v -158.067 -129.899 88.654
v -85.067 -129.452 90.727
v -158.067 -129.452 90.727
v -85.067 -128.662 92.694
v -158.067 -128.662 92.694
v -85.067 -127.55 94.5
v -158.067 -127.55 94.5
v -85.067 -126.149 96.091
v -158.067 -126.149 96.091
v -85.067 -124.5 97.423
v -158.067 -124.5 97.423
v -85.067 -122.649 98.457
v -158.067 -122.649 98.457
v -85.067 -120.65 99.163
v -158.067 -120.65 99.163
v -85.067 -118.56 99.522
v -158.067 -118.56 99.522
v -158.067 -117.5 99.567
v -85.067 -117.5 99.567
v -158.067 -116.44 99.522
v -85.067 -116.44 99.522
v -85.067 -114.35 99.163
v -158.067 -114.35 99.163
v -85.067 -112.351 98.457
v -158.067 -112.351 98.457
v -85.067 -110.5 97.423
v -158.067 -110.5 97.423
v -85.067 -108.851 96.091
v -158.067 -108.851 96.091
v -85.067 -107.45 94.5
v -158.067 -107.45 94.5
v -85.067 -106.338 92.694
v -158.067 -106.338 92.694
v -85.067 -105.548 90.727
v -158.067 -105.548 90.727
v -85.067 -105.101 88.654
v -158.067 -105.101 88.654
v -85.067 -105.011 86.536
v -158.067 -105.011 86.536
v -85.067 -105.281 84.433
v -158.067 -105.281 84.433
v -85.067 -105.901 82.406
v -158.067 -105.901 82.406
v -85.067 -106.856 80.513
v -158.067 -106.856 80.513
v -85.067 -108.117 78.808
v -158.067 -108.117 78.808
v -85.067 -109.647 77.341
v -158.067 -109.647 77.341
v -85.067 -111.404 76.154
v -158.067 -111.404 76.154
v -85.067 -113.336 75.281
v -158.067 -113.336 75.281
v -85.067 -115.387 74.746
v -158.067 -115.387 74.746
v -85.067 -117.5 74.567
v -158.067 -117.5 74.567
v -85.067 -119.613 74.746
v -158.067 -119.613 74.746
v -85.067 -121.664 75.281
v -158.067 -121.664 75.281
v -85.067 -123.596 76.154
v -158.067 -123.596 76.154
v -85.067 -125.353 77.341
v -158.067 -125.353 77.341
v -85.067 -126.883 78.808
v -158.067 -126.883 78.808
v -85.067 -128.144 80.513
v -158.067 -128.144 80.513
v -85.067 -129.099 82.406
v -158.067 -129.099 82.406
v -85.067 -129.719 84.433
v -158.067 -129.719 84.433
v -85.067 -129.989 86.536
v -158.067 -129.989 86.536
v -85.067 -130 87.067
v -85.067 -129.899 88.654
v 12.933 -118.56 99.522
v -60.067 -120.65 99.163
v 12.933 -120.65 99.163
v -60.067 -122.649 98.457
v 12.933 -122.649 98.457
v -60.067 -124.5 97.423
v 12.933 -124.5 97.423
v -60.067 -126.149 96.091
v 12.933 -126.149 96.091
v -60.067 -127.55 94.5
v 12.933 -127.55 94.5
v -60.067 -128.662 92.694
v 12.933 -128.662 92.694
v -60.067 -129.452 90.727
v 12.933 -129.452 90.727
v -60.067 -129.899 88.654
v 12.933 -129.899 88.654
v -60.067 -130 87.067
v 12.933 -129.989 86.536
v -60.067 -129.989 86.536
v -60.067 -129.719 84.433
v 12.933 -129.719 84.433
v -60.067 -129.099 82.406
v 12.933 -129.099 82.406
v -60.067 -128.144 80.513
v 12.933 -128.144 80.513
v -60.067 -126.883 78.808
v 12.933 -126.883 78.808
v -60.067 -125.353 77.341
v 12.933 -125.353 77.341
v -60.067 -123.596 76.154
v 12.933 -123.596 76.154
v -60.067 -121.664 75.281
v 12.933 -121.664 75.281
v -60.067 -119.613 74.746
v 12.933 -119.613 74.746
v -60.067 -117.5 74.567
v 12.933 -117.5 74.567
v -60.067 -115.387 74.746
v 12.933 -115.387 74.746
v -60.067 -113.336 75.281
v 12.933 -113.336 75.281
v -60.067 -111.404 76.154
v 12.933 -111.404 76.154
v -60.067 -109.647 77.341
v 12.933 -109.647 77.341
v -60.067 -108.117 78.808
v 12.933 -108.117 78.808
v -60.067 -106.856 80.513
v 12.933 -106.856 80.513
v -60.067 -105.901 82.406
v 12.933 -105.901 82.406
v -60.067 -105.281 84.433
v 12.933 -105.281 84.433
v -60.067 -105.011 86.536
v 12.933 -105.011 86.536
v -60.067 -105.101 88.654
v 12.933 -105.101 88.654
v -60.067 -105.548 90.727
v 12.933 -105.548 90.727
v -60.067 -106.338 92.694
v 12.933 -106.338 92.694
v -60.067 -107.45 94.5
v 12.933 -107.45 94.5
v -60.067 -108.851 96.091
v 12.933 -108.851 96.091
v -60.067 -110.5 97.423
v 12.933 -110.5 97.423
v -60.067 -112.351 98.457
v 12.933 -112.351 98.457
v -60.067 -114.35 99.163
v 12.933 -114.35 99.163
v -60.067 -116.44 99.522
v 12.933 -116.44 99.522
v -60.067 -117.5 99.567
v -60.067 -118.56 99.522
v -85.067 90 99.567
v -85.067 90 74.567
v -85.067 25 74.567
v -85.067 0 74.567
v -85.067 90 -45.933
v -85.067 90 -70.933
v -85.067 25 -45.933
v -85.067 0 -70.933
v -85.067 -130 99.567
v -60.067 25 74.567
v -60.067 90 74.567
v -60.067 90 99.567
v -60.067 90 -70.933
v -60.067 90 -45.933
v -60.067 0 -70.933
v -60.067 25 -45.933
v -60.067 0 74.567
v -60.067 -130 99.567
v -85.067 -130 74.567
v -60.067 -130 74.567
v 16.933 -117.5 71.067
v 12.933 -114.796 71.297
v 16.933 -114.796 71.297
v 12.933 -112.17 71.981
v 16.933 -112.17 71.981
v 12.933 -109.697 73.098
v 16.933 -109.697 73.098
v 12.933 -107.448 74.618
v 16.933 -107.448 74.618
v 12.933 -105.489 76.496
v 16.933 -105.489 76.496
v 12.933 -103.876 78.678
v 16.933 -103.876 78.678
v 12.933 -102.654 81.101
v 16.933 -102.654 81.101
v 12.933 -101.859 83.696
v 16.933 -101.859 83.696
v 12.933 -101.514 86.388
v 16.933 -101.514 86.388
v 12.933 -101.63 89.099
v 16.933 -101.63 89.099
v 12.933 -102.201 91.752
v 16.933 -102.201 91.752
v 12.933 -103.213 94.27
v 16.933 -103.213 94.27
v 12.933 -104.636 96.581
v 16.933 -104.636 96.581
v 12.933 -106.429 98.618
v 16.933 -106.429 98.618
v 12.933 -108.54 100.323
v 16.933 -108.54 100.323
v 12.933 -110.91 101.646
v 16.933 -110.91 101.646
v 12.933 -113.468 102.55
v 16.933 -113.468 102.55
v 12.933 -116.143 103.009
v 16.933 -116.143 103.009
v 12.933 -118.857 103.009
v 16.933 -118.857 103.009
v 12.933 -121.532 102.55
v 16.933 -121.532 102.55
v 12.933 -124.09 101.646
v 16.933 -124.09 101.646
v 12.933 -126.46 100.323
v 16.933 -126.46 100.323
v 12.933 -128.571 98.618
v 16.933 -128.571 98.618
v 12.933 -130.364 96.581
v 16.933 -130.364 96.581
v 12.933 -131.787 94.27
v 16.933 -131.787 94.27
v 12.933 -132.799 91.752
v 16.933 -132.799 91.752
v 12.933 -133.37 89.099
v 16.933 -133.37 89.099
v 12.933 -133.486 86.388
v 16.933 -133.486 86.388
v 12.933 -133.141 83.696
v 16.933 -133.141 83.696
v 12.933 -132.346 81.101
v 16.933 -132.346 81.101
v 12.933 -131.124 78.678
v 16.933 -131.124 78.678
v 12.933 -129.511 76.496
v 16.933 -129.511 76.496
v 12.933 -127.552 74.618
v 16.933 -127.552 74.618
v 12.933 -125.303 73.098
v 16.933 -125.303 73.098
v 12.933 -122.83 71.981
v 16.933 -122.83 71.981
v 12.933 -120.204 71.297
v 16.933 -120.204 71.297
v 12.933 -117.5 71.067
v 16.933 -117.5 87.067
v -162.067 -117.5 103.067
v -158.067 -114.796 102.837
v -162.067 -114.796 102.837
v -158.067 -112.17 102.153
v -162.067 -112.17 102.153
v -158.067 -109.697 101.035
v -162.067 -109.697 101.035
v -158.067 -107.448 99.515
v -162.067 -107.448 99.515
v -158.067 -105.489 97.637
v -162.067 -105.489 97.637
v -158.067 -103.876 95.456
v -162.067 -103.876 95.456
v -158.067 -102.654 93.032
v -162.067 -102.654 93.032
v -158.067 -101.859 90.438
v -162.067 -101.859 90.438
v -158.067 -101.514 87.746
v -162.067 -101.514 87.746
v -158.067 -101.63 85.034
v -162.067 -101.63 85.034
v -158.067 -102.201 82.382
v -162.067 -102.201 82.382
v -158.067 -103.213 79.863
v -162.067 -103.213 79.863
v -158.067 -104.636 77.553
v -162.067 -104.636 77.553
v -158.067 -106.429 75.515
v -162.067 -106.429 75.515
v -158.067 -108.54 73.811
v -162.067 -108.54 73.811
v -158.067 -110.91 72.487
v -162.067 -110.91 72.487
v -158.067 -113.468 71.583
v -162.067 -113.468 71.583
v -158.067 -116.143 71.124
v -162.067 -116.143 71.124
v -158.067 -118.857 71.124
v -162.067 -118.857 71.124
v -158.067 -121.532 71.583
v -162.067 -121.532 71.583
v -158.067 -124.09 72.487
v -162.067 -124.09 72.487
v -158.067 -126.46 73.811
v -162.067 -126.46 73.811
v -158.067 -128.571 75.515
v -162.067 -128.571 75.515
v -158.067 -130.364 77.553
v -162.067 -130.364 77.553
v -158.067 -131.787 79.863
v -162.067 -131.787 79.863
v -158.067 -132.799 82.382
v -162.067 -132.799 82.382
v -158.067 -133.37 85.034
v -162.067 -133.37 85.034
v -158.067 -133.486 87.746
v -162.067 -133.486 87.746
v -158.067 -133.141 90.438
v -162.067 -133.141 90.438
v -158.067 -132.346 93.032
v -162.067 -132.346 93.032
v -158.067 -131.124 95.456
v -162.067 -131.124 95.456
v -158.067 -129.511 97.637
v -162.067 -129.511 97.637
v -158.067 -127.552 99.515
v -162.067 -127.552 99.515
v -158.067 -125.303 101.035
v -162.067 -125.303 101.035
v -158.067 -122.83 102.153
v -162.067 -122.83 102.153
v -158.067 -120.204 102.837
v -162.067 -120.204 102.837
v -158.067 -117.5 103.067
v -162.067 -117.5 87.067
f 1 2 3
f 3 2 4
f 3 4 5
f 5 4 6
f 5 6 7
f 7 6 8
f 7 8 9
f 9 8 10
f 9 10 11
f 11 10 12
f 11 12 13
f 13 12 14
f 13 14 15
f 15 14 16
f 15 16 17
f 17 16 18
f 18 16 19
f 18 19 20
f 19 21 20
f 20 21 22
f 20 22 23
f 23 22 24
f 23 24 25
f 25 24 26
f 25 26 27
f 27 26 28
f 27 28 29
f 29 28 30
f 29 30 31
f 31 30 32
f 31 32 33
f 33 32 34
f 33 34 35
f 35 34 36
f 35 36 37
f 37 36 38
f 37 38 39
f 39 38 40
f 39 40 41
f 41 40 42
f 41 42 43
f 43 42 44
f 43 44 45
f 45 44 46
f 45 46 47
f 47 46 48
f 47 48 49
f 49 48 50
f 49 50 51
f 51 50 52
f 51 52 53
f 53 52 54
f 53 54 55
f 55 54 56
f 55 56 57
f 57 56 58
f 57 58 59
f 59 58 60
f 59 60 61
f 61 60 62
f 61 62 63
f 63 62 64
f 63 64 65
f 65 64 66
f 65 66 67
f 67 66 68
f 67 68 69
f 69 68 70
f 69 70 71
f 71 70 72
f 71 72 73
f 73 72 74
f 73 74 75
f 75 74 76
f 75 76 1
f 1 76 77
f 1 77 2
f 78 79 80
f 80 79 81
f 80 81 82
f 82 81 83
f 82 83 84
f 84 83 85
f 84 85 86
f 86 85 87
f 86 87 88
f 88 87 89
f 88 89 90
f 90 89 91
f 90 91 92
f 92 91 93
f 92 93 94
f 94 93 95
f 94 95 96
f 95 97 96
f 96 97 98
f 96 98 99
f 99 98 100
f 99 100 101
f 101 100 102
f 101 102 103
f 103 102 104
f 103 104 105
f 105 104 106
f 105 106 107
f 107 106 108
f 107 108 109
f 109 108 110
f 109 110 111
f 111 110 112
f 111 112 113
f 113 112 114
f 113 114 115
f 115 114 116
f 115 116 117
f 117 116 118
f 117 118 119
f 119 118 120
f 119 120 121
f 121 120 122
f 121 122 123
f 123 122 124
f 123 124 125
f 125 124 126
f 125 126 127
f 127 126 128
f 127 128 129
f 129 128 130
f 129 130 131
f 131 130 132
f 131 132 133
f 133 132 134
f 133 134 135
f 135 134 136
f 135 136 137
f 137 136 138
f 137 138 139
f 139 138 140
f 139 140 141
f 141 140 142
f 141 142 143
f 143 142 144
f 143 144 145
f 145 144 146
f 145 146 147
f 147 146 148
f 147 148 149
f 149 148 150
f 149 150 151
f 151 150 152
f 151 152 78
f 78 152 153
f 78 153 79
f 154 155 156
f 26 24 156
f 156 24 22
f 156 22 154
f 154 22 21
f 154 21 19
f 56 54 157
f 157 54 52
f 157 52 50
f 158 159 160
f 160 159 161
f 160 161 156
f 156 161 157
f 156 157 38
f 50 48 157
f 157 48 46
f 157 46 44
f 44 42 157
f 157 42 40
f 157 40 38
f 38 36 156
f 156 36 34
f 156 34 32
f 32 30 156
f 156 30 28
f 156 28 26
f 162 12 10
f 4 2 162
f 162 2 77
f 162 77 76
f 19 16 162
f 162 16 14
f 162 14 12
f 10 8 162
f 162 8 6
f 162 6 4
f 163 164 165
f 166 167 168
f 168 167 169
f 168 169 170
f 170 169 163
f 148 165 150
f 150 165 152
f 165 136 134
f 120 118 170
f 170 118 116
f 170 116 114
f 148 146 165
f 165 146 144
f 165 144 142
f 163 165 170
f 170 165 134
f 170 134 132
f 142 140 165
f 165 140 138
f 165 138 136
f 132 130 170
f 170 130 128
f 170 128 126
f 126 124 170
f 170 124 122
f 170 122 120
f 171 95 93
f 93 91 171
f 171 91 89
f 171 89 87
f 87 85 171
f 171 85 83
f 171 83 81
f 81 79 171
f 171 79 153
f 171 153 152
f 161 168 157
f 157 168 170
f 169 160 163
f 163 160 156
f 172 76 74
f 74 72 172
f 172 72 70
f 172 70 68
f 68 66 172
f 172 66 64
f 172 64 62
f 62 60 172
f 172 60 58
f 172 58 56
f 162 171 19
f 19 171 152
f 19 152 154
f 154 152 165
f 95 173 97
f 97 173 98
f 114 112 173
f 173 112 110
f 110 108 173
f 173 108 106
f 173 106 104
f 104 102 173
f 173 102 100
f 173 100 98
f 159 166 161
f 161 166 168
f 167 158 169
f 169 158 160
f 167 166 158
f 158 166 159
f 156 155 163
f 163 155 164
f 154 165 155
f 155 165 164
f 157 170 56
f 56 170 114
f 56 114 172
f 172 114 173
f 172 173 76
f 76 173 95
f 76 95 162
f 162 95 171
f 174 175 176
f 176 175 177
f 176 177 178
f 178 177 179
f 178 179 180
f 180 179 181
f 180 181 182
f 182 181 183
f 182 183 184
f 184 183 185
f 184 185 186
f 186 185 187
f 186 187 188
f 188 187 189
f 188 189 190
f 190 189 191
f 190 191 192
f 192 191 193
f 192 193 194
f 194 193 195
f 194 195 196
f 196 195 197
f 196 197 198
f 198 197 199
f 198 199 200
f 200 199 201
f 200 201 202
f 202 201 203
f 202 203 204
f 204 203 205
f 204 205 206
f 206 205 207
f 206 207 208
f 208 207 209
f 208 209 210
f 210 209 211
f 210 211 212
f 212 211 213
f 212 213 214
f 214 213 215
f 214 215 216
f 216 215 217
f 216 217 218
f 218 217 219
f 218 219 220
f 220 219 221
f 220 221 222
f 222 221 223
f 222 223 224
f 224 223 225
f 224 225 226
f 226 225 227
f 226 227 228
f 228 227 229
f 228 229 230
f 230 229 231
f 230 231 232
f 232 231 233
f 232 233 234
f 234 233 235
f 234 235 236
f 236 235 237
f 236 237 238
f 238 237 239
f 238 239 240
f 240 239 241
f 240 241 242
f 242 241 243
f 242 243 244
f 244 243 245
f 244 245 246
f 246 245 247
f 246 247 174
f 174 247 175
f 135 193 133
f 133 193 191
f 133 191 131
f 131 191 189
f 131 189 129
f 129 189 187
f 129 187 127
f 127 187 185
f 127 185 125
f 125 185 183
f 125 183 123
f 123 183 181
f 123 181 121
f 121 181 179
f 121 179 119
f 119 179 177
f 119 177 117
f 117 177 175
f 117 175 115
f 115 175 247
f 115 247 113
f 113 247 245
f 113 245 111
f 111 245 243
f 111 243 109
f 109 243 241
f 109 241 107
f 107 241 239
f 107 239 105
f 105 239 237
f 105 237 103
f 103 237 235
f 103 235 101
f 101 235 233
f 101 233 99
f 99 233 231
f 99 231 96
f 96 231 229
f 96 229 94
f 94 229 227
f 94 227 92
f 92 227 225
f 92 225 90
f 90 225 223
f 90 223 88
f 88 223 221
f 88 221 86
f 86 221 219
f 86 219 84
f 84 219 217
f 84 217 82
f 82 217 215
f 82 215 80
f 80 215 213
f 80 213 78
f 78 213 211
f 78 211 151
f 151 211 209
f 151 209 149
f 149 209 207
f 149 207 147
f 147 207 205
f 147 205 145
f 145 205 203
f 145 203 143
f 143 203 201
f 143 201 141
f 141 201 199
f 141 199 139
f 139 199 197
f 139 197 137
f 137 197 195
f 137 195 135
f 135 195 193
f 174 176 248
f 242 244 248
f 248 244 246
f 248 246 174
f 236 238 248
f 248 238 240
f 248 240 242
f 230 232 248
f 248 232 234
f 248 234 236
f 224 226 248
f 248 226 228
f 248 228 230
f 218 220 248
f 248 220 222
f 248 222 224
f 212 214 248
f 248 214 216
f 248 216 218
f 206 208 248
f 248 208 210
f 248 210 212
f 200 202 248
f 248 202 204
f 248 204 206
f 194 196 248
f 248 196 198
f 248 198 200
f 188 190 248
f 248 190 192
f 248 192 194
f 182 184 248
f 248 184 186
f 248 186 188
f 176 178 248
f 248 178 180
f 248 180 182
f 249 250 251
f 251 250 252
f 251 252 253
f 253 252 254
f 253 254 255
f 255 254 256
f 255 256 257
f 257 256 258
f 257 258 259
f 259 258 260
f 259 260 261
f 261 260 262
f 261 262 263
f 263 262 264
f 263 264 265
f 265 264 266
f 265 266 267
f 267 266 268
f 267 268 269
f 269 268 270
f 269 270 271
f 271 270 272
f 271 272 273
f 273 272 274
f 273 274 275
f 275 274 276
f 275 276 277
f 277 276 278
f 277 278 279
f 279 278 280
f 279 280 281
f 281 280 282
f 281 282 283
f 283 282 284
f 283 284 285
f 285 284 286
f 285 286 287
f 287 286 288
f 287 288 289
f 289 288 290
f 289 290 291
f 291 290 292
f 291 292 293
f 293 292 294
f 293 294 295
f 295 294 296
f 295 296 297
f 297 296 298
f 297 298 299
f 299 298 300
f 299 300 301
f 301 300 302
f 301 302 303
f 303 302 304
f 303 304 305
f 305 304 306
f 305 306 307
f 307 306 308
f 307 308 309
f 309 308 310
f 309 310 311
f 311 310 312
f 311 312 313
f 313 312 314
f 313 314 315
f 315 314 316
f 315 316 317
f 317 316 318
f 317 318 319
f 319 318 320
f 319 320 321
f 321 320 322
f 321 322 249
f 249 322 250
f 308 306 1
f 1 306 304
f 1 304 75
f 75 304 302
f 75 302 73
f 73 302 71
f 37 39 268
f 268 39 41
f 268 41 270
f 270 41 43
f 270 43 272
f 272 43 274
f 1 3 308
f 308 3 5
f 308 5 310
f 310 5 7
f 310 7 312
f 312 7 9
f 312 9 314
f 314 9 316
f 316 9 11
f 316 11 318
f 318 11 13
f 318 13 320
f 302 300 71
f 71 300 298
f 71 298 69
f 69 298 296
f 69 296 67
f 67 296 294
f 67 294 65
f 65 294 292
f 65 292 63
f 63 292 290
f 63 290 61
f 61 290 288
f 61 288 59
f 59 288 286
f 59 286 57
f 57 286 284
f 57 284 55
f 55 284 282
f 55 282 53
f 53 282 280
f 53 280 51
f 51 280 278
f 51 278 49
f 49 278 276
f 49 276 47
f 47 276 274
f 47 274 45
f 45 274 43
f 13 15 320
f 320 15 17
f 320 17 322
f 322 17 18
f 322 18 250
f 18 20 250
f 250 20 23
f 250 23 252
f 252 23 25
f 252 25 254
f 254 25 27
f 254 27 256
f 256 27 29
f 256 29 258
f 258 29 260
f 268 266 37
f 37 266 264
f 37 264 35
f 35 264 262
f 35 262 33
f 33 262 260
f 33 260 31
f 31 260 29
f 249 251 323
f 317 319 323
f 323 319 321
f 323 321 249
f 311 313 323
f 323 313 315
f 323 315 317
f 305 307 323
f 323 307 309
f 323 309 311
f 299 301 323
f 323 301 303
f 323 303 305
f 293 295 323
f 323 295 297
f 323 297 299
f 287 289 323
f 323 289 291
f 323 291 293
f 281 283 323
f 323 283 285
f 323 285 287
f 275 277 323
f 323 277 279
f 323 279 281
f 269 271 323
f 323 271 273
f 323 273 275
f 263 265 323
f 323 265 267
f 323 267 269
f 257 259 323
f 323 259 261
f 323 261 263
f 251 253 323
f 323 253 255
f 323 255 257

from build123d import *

# Parameters (mm, degrees)
SKETCH1_W                = 25
SKETCH1_H                = 170.5
BOSS_EXTRUDE1_DEPTH      = 25
SKETCH1_8_W              = 25
SKETCH1_8_H              = 25
BOSS_EXTRUDE2_DEPTH      = 90
BOSS_EXTRUDE3_DEPTH      = 90
BOSS_EXTRUDE3_DEPTH_BACK = 130
SKETCH1_9_W              = 25
SKETCH1_9_H              = 25
BOSS_EXTRUDE4_DEPTH      = 75
BOSS_EXTRUDE4_DEPTH_BACK = 100
SKETCH2_R                = 12.5
BOSS_EXTRUDE5_DEPTH      = 2
BOSS_EXTRUDE5_DEPTH_BACK = 2
SKETCH3_R                = 16
BOSS_EXTRUDE6_DEPTH      = 2
BOSS_EXTRUDE6_DEPTH_BACK = 2
SKETCH4_R                = 16


with BuildPart() as part:
    # Sketch1 → Boss-Extrude1 (new body)
    with BuildSketch(Plane(origin=(0, 0, 0), x_dir=(1, 0, 0), z_dir=(0, 1, 0))):
        with Locations((-72.566666667, -14.316666667)):
            Rectangle(SKETCH1_W, SKETCH1_H)
    extrude(amount=BOSS_EXTRUDE1_DEPTH)

    # Sketch1<8> → Boss-Extrude2 (add)
    with BuildSketch(Plane(origin=(0, 0, 0), x_dir=(1, 0, 0), z_dir=(0, 1, 0))):
        with Locations((-72.566666667, 58.433333333)):
            Rectangle(SKETCH1_8_W, SKETCH1_8_H)
        with Locations((-72.566666667, -87.066666667)):
            Rectangle(SKETCH1_8_W, SKETCH1_8_H)
    extrude(amount=BOSS_EXTRUDE2_DEPTH)

    # Sketch1<9> → Boss-Extrude3 (add, two sides: drawn at the far end of the back side and taken through both)
    with BuildSketch(Plane(origin=(0, 0, 0), x_dir=(1, 0, 0), z_dir=(0, 1, 0)).offset(-BOSS_EXTRUDE3_DEPTH_BACK)):
        with Locations((-72.566666667, -87.066666667)):
            Rectangle(SKETCH1_9_W, SKETCH1_9_H)
    extrude(amount=BOSS_EXTRUDE3_DEPTH + BOSS_EXTRUDE3_DEPTH_BACK)

    # Sketch2 → Boss-Extrude4 (add, two sides: drawn at the far end of the back side and taken through both)
    with BuildSketch(Plane(origin=(-60.066666667, 0, 0), x_dir=(0, 0, -1), z_dir=(1, 0, 0)).offset(-BOSS_EXTRUDE4_DEPTH_BACK)):
        with Locations((-87.066666667, -117.5)):
            Circle(SKETCH2_R)
    extrude(amount=BOSS_EXTRUDE4_DEPTH + BOSS_EXTRUDE4_DEPTH_BACK)

    # Sketch3 → Boss-Extrude5 (add, two sides: drawn at the far end of the back side and taken through both)
    with BuildSketch(Plane(origin=(14.933333333, 0, 0), x_dir=(0, 0, -1), z_dir=(1, 0, 0)).offset(-BOSS_EXTRUDE5_DEPTH_BACK)):
        with Locations((-87.066666667, -117.5)):
            Circle(SKETCH3_R)
    extrude(amount=BOSS_EXTRUDE5_DEPTH + BOSS_EXTRUDE5_DEPTH_BACK)

    # Sketch4 → Boss-Extrude6 (add, two sides: drawn at the far end of the back side and taken through both)
    with BuildSketch(Plane.ZY.offset(160.066666667).offset(-BOSS_EXTRUDE6_DEPTH_BACK)):
        with Locations((87.066666667, -117.5)):
            Circle(SKETCH4_R)
    extrude(amount=BOSS_EXTRUDE6_DEPTH + BOSS_EXTRUDE6_DEPTH_BACK)


solid = part.part
